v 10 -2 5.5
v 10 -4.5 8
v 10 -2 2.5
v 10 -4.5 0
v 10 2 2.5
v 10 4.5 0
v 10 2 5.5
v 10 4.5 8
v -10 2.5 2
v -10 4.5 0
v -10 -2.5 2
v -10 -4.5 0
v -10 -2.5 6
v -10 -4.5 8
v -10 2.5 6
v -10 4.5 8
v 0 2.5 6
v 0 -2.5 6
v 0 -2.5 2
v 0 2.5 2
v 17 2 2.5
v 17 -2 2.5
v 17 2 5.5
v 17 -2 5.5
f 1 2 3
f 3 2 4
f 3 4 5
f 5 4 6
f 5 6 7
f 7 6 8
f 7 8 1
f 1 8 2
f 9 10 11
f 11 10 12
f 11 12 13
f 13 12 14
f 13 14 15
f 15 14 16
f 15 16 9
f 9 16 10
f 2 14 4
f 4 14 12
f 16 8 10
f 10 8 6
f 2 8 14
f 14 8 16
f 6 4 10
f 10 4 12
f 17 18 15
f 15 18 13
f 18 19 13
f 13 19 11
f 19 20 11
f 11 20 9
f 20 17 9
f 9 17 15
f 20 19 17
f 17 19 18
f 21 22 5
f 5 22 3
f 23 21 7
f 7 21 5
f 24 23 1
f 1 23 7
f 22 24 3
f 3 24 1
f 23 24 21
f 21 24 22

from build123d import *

# Parameters (mm, degrees)
SKETCH2_W           = 20
SKETCH2_H           = 9
BOSS_EXTRUDE1_DEPTH = 8
SKETCH3_W           = 4
SKETCH3_H           = 5
CUT_EXTRUDE1_DEPTH  = 10
SKETCH4_W           = 3
SKETCH4_H           = 4
BOSS_EXTRUDE2_DEPTH = 7


with BuildPart() as part:
    # Sketch2 → Boss-Extrude1 (new body)
    with BuildSketch(Plane.XY):
        Rectangle(SKETCH2_W, SKETCH2_H)
    extrude(amount=BOSS_EXTRUDE1_DEPTH)

    # Sketch3 → Cut-Extrude1 (cut)
    with BuildSketch(Plane.ZY.offset(10)):
        with Locations((4, 0)):
            Rectangle(SKETCH3_W, SKETCH3_H)
    extrude(amount=-CUT_EXTRUDE1_DEPTH, mode=Mode.SUBTRACT)

    # Sketch4 → Boss-Extrude2 (add)
    with BuildSketch(Plane(origin=(10, 0, 0), x_dir=(0, 0, -1), z_dir=(1, 0, 0))):
        with Locations((-4, 0)):
            Rectangle(SKETCH4_W, SKETCH4_H)
    extrude(amount=BOSS_EXTRUDE2_DEPTH)


solid = part.part
